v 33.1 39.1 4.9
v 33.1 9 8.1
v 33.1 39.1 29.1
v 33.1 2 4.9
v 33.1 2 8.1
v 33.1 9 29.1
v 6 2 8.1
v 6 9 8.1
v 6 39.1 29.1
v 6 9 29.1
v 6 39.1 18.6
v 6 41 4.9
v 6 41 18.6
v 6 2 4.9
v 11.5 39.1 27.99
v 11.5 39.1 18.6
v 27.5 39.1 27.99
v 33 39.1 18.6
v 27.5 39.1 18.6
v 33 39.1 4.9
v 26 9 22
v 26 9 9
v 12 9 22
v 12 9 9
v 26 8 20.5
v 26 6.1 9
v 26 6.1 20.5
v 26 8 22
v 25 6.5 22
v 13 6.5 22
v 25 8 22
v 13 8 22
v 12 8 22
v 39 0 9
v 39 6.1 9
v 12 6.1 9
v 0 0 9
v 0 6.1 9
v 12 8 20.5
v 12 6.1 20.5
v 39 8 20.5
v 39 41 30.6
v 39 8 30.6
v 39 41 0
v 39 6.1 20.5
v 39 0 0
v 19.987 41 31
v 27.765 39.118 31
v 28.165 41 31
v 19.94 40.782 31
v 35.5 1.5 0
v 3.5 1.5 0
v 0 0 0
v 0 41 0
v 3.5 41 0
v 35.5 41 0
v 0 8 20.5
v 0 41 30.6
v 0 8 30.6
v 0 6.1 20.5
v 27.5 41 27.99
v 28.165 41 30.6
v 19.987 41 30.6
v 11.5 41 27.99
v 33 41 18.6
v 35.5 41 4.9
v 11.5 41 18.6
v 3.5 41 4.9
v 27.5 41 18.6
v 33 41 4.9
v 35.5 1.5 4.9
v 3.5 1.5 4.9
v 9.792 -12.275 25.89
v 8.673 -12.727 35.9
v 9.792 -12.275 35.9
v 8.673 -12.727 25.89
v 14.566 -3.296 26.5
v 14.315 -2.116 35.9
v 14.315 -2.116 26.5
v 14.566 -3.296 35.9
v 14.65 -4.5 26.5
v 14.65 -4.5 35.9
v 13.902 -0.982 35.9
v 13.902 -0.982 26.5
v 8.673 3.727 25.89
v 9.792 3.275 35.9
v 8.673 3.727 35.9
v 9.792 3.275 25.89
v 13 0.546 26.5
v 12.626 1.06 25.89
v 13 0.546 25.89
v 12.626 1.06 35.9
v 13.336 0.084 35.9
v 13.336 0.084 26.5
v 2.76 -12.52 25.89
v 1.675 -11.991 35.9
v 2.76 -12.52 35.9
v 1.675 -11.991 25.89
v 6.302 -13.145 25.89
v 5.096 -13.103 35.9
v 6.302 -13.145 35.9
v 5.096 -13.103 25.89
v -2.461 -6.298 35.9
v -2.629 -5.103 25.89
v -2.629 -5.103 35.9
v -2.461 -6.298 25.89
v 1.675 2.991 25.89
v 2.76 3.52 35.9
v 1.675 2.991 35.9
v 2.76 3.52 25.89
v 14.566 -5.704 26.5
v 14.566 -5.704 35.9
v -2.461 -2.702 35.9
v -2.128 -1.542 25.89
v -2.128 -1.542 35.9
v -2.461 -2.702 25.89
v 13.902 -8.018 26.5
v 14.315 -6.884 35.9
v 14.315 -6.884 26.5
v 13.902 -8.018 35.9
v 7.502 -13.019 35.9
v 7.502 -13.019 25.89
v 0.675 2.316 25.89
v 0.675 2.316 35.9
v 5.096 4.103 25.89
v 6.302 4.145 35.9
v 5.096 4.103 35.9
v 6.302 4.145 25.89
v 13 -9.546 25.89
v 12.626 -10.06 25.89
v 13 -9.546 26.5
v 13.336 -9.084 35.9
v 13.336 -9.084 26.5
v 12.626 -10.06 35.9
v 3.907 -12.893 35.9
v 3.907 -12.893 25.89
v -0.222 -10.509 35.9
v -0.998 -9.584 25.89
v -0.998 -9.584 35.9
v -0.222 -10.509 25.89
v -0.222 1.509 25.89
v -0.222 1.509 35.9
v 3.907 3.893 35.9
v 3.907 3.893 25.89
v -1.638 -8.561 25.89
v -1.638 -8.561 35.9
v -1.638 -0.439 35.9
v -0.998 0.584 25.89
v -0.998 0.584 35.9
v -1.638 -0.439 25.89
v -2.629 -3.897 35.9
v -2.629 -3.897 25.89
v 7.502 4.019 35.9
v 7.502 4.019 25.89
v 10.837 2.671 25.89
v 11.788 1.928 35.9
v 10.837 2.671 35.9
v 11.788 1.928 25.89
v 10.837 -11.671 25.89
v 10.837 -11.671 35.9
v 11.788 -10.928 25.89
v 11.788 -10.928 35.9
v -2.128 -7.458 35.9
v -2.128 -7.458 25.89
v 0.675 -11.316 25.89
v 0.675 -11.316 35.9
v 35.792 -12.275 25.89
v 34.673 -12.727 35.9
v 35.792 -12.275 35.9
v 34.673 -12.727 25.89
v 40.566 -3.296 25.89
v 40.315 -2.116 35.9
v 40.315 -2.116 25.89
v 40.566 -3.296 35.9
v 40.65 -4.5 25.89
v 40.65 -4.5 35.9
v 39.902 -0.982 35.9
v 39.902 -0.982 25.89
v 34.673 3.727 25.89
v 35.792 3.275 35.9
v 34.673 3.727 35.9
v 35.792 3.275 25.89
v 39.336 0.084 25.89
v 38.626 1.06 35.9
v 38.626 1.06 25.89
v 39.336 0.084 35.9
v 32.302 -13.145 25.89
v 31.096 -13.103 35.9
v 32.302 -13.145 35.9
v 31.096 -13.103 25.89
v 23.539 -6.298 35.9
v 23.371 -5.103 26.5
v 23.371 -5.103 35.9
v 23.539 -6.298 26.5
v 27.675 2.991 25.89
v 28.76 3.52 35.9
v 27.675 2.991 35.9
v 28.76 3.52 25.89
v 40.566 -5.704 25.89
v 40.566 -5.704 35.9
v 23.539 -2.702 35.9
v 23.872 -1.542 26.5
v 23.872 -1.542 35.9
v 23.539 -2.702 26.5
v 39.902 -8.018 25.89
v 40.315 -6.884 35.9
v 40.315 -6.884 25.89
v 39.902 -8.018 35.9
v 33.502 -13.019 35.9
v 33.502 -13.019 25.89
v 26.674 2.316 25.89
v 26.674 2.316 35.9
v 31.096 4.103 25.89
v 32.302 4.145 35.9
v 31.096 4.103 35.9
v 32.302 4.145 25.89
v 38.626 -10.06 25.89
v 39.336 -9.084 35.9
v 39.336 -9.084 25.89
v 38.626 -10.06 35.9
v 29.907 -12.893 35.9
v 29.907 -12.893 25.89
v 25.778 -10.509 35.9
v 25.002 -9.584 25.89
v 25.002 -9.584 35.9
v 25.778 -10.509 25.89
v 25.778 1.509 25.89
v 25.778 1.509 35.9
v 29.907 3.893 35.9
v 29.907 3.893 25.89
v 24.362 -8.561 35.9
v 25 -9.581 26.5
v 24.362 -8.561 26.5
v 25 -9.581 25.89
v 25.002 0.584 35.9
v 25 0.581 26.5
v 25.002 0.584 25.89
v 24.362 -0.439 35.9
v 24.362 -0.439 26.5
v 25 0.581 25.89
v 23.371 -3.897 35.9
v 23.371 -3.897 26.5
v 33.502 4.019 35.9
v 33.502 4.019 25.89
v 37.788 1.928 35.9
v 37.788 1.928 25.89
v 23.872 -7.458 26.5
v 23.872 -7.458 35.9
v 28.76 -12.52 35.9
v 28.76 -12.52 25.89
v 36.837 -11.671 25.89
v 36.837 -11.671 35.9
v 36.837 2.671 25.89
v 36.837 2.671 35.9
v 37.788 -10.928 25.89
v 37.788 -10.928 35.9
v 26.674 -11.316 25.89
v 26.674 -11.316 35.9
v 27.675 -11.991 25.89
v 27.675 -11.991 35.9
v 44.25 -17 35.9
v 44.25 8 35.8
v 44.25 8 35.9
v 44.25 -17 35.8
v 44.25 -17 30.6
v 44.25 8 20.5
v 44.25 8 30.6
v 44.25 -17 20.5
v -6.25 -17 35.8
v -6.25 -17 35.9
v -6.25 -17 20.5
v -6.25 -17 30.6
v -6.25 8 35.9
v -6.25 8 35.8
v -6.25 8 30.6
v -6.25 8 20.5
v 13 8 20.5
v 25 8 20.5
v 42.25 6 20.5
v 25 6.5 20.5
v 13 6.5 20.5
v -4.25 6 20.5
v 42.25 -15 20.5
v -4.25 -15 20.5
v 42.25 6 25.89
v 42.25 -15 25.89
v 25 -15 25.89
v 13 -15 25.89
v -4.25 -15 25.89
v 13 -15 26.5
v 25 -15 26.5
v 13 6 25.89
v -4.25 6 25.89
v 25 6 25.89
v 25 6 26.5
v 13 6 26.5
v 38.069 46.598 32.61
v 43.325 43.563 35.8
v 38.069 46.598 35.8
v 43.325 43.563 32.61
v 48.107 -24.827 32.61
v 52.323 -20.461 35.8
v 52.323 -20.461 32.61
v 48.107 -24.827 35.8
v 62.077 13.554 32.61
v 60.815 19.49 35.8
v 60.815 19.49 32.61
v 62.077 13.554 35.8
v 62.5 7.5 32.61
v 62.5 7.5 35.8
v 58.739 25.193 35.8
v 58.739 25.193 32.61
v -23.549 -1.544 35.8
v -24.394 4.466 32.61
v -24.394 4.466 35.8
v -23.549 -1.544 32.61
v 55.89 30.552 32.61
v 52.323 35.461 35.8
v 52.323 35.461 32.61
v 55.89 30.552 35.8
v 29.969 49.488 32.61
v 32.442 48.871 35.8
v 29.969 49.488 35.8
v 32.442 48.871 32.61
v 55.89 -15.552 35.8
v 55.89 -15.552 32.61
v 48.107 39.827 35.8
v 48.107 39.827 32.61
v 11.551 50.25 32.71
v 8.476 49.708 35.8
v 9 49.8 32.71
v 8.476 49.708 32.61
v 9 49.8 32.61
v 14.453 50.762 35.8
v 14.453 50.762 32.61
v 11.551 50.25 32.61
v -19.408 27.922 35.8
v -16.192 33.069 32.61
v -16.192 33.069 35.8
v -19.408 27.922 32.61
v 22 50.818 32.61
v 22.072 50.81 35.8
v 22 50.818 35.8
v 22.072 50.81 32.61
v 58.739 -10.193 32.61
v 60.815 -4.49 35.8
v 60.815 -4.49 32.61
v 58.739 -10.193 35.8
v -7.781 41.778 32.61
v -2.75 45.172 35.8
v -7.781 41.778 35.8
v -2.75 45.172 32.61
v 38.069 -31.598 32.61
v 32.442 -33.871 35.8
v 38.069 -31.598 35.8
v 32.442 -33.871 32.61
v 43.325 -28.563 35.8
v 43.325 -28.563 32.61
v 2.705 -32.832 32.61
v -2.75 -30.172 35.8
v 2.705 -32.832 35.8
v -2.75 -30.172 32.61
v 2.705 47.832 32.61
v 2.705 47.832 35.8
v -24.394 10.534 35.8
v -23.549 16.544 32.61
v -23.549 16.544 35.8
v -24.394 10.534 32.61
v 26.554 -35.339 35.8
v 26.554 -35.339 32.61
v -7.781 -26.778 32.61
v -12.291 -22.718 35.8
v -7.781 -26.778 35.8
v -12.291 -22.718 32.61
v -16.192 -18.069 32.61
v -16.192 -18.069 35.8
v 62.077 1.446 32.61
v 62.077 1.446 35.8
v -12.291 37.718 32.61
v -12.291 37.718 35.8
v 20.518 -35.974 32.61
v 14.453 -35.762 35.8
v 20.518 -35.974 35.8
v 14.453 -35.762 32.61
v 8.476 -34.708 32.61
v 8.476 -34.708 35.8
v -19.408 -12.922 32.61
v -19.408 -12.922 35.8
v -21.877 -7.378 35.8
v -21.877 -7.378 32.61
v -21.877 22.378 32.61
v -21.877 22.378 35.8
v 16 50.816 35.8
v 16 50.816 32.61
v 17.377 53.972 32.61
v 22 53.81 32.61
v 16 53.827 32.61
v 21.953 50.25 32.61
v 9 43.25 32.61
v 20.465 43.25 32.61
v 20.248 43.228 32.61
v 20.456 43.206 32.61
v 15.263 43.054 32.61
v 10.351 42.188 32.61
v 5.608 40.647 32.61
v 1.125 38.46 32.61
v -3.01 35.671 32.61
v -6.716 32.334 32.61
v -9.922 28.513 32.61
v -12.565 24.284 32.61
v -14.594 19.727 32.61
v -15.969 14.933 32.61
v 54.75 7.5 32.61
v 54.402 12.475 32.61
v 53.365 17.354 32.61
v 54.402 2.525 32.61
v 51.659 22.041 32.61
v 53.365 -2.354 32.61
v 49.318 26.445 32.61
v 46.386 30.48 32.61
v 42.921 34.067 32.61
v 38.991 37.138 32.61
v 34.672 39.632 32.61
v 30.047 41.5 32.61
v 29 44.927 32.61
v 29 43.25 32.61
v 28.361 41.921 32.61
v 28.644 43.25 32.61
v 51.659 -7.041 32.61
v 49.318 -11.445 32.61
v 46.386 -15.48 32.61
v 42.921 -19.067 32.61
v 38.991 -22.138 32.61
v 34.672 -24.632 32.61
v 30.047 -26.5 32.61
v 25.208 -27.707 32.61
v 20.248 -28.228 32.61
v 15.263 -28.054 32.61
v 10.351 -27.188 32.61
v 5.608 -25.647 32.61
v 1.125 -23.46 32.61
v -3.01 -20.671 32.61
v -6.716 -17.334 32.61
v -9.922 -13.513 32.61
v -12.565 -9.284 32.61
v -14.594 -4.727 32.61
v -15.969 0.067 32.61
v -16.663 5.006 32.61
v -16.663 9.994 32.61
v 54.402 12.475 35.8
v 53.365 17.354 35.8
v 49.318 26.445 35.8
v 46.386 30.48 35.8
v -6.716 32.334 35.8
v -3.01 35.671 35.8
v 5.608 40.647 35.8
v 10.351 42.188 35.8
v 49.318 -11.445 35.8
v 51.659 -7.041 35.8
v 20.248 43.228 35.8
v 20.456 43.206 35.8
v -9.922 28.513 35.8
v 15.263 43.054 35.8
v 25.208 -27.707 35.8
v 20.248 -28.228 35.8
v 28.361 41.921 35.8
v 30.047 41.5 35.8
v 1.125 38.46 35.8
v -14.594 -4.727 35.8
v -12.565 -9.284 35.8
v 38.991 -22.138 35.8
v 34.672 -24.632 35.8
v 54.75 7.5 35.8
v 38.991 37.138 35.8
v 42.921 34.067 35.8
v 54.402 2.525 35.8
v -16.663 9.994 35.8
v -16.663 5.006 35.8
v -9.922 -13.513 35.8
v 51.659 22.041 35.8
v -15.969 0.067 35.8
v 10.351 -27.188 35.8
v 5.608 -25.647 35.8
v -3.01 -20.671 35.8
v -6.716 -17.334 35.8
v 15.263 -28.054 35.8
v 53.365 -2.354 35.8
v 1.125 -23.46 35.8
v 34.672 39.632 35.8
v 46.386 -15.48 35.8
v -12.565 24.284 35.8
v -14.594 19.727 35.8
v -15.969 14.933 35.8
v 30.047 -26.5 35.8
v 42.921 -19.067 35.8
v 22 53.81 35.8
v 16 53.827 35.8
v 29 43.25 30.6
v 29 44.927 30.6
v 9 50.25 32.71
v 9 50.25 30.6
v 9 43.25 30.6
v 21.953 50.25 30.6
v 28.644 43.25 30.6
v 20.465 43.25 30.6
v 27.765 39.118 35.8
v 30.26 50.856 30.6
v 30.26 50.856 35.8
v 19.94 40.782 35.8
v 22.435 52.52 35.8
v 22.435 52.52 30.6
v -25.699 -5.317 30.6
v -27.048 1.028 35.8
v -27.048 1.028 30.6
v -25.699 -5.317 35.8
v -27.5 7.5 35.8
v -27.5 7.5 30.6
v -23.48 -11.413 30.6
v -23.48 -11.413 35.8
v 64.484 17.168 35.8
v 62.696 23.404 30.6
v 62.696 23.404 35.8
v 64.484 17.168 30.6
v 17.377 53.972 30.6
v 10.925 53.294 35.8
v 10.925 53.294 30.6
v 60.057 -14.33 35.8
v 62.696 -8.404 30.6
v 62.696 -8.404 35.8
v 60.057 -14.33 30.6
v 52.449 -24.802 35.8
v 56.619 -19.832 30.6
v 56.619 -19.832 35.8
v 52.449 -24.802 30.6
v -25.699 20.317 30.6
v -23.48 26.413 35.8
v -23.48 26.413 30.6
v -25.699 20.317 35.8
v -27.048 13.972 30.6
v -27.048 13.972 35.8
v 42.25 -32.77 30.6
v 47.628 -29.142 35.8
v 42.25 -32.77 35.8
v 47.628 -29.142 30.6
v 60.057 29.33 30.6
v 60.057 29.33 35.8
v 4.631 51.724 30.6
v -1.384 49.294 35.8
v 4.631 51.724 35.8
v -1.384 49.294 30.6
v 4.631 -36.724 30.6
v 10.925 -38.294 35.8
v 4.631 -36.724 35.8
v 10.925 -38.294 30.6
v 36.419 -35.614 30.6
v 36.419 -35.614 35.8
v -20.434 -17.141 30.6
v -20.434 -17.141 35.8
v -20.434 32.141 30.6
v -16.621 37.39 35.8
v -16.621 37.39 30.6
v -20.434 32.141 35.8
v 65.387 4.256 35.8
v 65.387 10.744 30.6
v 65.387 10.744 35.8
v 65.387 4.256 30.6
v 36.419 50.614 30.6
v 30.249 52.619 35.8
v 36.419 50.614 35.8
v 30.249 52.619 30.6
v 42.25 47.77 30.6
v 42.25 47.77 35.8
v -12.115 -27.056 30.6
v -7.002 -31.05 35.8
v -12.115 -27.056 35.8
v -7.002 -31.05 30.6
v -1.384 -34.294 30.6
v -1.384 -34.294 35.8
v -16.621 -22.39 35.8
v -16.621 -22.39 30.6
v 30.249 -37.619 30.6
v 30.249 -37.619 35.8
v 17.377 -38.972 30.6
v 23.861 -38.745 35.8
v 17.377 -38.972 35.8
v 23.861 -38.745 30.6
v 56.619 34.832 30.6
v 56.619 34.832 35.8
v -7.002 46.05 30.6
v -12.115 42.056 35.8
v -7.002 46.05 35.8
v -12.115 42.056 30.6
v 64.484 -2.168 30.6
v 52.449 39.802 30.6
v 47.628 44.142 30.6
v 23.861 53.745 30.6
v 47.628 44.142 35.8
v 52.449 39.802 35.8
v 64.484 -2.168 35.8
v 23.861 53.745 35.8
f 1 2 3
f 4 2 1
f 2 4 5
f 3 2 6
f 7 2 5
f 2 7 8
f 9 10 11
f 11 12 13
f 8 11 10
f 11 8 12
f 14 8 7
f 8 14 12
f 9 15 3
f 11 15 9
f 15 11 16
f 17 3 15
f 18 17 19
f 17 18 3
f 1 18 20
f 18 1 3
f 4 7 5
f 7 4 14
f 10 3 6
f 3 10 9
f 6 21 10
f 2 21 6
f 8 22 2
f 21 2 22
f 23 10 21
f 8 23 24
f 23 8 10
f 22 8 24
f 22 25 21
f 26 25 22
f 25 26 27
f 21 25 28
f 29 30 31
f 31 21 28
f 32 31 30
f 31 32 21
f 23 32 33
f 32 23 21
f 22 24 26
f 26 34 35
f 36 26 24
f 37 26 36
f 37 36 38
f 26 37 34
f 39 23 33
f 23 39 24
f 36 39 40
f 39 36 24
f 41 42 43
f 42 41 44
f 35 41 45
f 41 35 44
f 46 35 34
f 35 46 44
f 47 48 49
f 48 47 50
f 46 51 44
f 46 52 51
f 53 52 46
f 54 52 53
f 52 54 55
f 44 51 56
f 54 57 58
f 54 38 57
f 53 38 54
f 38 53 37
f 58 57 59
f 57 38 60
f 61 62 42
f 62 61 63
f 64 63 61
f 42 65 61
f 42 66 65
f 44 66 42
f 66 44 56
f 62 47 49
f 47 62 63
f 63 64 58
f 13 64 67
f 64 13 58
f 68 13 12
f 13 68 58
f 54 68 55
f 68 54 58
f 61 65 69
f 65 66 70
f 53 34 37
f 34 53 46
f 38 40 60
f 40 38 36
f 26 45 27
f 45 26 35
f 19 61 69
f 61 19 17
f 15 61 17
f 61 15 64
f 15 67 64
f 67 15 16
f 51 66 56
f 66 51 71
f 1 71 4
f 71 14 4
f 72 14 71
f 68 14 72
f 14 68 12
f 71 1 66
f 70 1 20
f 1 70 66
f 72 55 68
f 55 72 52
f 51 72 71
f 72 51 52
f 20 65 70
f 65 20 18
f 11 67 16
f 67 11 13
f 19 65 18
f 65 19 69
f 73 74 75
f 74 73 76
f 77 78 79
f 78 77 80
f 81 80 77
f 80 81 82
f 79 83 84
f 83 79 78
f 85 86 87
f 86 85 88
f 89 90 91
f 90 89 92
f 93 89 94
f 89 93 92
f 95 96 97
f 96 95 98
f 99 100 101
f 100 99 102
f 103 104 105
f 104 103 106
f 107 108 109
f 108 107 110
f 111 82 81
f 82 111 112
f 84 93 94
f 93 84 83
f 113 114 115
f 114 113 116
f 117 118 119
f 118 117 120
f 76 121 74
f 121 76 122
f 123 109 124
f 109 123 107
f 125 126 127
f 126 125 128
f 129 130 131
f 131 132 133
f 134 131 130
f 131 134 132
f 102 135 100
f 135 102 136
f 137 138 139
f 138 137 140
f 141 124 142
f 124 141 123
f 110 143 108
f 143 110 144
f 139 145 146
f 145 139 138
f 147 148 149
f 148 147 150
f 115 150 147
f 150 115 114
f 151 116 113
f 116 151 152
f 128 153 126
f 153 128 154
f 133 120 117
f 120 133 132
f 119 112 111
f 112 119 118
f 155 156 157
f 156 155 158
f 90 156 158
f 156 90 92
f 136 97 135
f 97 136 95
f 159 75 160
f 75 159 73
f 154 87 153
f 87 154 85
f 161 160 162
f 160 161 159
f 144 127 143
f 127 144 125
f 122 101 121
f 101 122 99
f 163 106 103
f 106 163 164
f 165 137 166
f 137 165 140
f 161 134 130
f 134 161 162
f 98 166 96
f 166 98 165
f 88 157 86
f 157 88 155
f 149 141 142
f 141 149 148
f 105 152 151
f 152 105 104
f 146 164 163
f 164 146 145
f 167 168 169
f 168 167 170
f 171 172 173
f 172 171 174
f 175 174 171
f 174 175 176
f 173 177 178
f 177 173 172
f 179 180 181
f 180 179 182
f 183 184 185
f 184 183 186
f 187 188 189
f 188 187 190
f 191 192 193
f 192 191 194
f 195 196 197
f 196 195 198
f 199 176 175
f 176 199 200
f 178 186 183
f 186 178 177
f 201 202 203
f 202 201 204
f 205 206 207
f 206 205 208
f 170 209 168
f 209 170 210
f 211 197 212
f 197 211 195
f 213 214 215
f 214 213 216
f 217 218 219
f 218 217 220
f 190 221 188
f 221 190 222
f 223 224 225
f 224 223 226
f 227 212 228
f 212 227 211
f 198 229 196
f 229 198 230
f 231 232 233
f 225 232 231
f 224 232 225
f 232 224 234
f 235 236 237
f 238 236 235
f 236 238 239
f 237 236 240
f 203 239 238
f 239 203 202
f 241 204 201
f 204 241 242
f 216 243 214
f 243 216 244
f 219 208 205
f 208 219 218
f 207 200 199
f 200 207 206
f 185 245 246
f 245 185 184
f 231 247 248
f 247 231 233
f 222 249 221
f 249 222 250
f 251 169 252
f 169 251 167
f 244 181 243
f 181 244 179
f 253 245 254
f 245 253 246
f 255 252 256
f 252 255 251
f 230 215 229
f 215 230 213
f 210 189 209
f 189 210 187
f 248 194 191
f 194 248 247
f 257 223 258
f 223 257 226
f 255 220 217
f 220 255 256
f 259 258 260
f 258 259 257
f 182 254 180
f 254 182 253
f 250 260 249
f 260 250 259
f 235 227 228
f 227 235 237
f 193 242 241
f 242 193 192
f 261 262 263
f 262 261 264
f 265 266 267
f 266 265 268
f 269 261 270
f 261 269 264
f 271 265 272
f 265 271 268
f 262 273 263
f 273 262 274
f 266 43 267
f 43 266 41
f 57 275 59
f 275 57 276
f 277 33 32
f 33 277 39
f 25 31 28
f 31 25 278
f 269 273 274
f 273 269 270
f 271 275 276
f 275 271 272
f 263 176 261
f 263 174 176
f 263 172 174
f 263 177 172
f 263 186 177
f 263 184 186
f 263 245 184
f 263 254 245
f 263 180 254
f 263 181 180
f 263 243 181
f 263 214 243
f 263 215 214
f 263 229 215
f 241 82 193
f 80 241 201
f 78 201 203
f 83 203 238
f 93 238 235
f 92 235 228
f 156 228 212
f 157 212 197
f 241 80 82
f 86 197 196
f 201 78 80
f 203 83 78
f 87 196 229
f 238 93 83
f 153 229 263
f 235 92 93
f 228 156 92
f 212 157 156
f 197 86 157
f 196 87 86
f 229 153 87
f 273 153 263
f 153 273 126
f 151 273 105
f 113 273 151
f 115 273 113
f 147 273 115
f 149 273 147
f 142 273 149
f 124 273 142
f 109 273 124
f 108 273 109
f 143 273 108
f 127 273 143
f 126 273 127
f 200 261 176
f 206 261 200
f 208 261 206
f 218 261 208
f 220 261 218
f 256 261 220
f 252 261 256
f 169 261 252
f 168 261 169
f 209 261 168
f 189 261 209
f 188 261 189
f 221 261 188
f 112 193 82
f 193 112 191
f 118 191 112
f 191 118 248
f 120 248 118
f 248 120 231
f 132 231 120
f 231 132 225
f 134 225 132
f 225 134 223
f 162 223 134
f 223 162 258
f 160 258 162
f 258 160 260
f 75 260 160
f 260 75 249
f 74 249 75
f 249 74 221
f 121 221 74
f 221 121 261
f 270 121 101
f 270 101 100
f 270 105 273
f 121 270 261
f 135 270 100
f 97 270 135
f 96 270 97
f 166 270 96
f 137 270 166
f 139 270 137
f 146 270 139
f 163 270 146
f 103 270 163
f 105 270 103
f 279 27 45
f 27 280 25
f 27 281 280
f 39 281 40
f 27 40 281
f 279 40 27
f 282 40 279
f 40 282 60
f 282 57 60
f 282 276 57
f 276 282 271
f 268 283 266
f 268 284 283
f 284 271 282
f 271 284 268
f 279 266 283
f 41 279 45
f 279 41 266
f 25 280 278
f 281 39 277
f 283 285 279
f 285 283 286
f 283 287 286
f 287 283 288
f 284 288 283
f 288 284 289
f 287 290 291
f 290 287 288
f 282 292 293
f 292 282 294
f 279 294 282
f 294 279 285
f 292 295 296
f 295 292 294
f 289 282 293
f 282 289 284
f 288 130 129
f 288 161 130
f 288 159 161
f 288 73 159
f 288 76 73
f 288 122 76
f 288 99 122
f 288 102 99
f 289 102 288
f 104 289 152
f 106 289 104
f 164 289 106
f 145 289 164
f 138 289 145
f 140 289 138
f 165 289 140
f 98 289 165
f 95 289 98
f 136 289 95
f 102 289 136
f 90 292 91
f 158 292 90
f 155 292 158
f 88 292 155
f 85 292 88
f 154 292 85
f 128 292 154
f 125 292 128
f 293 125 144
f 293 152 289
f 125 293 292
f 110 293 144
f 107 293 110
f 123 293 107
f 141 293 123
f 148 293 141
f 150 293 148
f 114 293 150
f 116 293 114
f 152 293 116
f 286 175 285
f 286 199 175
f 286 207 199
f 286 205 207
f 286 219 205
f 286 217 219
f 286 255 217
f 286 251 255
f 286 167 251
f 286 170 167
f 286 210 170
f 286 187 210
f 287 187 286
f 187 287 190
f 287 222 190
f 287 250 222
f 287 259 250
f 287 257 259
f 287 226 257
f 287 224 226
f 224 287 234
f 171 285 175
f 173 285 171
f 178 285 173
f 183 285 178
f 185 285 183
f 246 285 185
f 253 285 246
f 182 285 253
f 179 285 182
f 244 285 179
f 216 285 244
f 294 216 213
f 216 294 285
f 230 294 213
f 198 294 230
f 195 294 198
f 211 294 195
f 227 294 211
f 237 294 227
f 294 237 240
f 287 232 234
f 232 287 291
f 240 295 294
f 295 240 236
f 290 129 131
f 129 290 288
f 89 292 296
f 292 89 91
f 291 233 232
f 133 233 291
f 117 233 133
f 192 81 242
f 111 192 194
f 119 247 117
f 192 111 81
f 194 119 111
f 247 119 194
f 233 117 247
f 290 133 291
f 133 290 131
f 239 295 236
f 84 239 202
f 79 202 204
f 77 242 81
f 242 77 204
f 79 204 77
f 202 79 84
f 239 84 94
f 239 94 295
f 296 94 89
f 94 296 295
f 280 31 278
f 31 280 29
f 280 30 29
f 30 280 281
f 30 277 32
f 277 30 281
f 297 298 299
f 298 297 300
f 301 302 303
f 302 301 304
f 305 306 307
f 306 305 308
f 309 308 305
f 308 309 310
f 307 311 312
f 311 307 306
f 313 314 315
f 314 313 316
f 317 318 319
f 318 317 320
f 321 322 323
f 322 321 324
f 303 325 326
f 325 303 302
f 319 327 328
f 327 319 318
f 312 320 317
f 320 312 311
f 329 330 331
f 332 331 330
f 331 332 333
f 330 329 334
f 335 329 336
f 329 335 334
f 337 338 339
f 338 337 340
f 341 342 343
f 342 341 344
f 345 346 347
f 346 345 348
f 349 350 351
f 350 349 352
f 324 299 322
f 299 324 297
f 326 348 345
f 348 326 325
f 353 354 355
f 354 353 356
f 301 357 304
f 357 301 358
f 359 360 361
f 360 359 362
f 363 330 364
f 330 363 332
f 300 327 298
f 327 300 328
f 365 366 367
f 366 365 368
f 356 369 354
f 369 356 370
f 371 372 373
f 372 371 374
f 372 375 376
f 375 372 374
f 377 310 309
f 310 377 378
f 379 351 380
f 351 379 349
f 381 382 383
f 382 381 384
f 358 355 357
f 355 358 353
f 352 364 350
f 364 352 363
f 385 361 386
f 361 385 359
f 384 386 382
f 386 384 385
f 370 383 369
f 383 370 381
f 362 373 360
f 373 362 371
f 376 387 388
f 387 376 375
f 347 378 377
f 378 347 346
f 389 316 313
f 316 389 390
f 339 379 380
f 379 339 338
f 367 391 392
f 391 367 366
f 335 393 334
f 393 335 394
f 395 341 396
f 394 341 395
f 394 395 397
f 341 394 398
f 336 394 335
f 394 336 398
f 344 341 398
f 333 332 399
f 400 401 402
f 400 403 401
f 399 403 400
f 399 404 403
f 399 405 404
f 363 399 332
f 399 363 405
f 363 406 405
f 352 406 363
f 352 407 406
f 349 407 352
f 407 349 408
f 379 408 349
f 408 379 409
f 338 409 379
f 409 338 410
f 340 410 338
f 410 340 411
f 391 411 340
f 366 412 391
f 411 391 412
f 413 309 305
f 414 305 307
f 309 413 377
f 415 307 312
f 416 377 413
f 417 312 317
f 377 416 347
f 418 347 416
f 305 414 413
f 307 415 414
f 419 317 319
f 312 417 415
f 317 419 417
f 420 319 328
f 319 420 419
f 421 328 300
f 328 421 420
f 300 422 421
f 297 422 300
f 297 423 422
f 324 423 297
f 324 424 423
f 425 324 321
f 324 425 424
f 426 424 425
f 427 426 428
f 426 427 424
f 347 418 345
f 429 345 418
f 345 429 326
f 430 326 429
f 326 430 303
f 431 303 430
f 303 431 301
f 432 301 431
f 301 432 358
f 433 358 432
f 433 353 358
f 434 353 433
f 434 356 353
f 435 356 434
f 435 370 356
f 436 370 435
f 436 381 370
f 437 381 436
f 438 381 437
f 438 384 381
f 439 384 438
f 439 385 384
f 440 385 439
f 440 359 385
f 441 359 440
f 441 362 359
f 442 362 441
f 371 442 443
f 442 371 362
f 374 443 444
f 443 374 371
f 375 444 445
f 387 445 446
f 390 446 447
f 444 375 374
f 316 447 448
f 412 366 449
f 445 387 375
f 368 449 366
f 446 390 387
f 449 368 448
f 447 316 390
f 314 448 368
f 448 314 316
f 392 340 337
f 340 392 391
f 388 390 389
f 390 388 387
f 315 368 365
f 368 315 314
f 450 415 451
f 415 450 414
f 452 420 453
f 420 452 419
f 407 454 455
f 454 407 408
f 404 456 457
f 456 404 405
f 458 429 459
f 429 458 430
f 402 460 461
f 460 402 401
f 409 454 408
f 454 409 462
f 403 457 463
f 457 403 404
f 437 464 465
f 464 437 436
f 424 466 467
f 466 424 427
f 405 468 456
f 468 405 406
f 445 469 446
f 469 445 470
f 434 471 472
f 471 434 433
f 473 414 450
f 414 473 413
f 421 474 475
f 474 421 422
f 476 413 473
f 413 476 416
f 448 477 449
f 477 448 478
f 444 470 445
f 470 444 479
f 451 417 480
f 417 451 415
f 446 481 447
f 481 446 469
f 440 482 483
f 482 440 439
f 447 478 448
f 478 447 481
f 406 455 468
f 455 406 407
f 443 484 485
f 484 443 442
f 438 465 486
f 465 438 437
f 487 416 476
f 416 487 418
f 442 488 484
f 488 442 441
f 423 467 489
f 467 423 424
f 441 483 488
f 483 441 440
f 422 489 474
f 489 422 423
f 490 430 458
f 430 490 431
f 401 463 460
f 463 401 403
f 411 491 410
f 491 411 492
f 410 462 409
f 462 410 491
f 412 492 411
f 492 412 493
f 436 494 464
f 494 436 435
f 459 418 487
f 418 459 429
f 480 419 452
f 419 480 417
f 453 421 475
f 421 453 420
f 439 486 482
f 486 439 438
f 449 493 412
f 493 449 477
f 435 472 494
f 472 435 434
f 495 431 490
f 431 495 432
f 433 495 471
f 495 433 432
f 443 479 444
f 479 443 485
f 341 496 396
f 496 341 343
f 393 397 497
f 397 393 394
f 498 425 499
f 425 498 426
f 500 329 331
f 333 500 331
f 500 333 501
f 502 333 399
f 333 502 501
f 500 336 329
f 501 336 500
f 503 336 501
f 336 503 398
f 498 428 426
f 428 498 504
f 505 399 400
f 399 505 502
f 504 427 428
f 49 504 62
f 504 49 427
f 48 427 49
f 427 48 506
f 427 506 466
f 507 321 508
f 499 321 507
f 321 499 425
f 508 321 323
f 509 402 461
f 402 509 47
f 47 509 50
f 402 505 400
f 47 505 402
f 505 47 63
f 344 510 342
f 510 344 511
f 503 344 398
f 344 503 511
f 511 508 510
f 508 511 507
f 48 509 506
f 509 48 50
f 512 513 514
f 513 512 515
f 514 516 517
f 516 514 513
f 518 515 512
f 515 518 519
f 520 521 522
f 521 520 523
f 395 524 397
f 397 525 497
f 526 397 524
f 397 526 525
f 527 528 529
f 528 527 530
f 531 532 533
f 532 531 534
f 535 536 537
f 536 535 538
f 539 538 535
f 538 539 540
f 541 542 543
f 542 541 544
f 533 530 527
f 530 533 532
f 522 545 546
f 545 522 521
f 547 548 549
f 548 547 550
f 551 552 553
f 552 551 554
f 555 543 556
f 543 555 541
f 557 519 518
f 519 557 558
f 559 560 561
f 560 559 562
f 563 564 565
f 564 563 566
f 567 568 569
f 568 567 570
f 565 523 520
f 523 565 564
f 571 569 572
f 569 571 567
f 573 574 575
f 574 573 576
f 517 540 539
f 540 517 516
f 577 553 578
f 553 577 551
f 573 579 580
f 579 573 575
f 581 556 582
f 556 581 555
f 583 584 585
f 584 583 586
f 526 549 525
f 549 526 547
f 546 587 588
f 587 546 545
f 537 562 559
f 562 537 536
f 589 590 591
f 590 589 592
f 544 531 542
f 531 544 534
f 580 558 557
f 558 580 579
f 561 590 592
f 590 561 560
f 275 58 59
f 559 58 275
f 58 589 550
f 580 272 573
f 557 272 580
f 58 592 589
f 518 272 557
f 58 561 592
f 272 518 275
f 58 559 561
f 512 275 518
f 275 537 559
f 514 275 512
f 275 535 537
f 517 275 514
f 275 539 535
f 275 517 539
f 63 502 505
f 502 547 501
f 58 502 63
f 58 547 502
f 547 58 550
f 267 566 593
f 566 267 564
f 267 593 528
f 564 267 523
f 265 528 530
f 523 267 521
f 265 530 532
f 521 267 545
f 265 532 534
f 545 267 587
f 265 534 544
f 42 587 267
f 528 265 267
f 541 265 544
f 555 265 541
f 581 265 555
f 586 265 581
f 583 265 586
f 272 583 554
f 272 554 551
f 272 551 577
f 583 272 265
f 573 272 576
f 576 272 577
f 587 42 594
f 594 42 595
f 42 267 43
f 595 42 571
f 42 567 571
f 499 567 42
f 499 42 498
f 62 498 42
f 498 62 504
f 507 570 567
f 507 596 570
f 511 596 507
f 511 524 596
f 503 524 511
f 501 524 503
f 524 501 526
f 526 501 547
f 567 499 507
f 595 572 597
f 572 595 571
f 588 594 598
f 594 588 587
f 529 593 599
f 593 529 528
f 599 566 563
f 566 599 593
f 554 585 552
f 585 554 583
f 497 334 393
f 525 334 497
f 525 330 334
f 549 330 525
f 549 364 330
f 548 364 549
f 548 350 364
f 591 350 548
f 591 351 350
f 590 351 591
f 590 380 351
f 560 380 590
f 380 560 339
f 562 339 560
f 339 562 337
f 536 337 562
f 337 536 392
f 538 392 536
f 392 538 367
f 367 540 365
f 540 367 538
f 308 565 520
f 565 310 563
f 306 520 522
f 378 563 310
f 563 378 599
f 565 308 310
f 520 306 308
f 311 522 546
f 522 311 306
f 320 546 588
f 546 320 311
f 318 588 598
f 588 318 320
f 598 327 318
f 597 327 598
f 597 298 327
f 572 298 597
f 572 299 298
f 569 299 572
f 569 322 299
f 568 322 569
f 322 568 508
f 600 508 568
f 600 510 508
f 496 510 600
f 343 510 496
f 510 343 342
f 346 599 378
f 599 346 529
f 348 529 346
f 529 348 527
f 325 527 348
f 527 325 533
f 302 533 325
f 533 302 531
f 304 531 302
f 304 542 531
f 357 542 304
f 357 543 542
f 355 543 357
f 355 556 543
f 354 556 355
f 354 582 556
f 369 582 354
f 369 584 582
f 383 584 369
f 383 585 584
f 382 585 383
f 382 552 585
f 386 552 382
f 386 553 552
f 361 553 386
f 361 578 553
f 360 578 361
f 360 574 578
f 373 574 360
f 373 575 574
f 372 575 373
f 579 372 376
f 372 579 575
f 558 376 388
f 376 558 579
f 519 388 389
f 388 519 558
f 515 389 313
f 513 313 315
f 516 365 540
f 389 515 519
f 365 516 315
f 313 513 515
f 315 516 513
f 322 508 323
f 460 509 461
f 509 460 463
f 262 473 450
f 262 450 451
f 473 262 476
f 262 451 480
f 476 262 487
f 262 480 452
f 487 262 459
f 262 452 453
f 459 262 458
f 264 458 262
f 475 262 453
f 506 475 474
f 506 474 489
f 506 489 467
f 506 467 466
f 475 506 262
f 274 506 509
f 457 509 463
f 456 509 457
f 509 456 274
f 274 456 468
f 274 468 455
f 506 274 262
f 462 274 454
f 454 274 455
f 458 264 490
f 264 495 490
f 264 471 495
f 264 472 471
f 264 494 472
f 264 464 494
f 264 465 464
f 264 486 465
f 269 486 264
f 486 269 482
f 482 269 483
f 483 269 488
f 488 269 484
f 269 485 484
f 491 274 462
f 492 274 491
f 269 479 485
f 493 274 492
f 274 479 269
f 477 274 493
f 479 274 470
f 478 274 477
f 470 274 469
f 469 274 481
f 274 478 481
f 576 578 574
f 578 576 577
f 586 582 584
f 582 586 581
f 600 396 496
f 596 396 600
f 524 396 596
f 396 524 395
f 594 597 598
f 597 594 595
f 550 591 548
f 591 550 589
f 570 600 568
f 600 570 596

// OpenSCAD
// use <../LibExternal/Triangles.scad>;
// use <MCAD/shapes/triangles.scad>;
use <MCAD/triangles.scad>;

debug=0;


border=2;
border1=1;
addSpace=.5;
wemosD1Mini=[26,36,5]+addSpace*[2,2,2];
wemosD1ExperimentBoard=[26,29,20]+addSpace*[2,2,2];


// ---------------------------------------------------------------------------------------------------------
// do not need to modify anything below here
// ---------------------------------------------------------------------------------------------------------
/* [Hidden] */

$fn=45;
numberOfBaseMountingClips=0;

// Main
difference(){
    translate([0,debug*20,0]) HandWashTimerHousing();
    
    // cube to cut fee for Debugging
    // translate([25,-60,-.1])cube([120,120,20]);
    // # translate([-25,-60,-14-.1])cube([120,120,20]);
    // translate([11,border,-.1])cube([28,39,border+.2]);
}
//translate([0,90,0]) bottomLid(cutout=0);
//wemosCutout();
// neoPixelCutout();
// translate([70,debug*20,31.7])    bottomLid()


if ( debug ) {
    translate([-60,0,0]) wemosCutout();

    translate([-90,50,0]) UltrasonicHousing();

    translate([0,-60,0]) neoPixelHolder();

    translate([90,-60,0]) neoPixelCutout();



}

neoPixelRingH=3.2;
neoPixelRingDInner=72;
neoPixelRingDOuter=86.5;


module HandWashTimerHousing(){

    connectionHeight=10;
//    offsetX=9.5;
     offsetX=0;
    borderX=4;
    
    outerSize=[ 1*wemosD1Mini[0] + 2*border,
                1*wemosD1Mini[1] + 2*border,
                1*wemosD1Mini[2] + 2*border
                    +wemosD1ExperimentBoard[2]
                ]
               +[2*borderX,0,0];
    
    difference(){
        cube(outerSize);

        // CUt away outer part for fitting SR04
        translate(border*[0,-1,1]
                    + [-4,.1 ,wemosD1Mini[2]+border1 ]
                ) 
            cube([47,8,32]);
        
        // Wemos cutout
        translate( border * [1,1,1] 
                  + borderX*[1,0,0]) 
            wemosCutout();

        // Cutout for Neopixel Cable
        translate( border*[1,0,0]
                    + [offsetX + wemosD1Mini[0]/2-4,
                    wemosD1Mini[1] +2-.1 ,18-.01 ]
                ) 
            cube([16,border+2,10]);

        // remove border bottom
        translate([borderX,0,-.1]
                    +border*[0,1,0]
                    +addSpace*[-1,-1,0])
            bottomLid(cutOut=1);

        // remove border back
        translate([borderX+border,wemosD1Mini[1]+border,-.1])   
            cube([wemosD1Mini[0],2,border
                    + wemosD1Mini[2]+0.5*wemosD1ExperimentBoard[2]]
                +.2*[0,1,1]);
        }

    // SR04
    translate([borderX+15,8,border+14+4.5])
        rotate([90,0,0])
            UltrasonicHousing();

    // Neo Pixel Holder
    translate([borderX+15,7.5,outerSize[2]-1.2*border+2])
        rotate([0,0,180]) neoPixelHolder();
    
    // Base Mount Clips
    translate([0,0,0]) 
        BaseMountingClips(
            numberOfBaseMountingClips=numberOfBaseMountingClips,
            outerSize= outerSize);
	
    }


module bottomLid(cutOut=0){
    cube(
        [wemosD1Mini[0],wemosD1Mini[1],border]
        +border*[2,2,1]
        +cutOut*addSpace*[2,2,2]);
}

module backLid(cutout=0){
    cube([  wemosD1Mini[0] + 2*border,
            1,
            wemosD1Mini[2]+ wemosD1ExperimentBoard[2] ]
        +cutout*[1,1,2]
    );
}

module wemosCutout(){
        hBase=wemosD1Mini[2];
        height=hBase
            +wemosD1ExperimentBoard[2];
 
       cube(wemosD1Mini + [.1,.1,.1]);
        deltaY=wemosD1Mini[1]-wemosD1ExperimentBoard[1];
        translate([0,deltaY,hBase])
            cube(wemosD1ExperimentBoard
                +[.1,.1,.1]);
        
        // Usb Cutout
        translate([6,31,-3])
            cube([14,15,9+4]); 

        // SC04 4-Pin Plug cutout
        // y direction is larger so we can slide in the SR04
        translate([6,-3,7])
            cube([14,16,13]);


}

module neoPixelHolder(){
    dOuter=neoPixelRingDOuter +addSpace +border +4;
    dInner=0;
    // dInner=neoPixelRingDInner -addSpace -border -14;
    hTotal=neoPixelRingH                +border;
    difference(){
        cylinder(h=hTotal,d=dOuter);
        translate([0,0,-.01])
            cylinder(h=hTotal+.02,d=dInner);
        
        translate([0,0,.01+border])
            rotate([0,0,180])
                neoPixelCutout();
        
        // cutout for SR04
        translate([-22.5,2,-.01])
            cube([45,21,hTotal+1]);
        
    }
}


module neoPixelCutout(){
    dOuter=neoPixelRingDOuter+addSpace;
    dInner=neoPixelRingDInner-addSpace;
    hTotal=neoPixelRingH;
    difference(){
        cylinder(h=hTotal,d=dOuter);
        translate([0,0,-.01])
            cylinder(h=hTotal+.02,d=dInner);
    }

    translate([-3,dOuter/2-.2,0])    cube([6,6,hTotal]);

    // FOr cables
    translate([-10,dInner/2,-3])        cube([20,7,3.1]);

    // for cable tie to fix cables
    rotate([0,0,-12])
        translate([-6,dInner/2-3,-3]) 
        cube([8,12,hTotal+6]);

    numLeds=24;
    for ( i=[0:360/numLeds:360] ){
        rotate([0,0,i])
            translate([-3,dInner/2+1,hTotal])
                cube([6,6,2]);
    }
}



// Modules
module UltrasonicHousing(){
    innerCutout=[45.5,3.4,20]+border1*[1,0,1];

    tubeLen=12;

    holeDistance=26;
    diameter=16.3+1;

	outerBase = innerCutout
                + [0,tubeLen,0]
                + 2*border*[1,0,1];

	color("blue")
    difference(){
    // union(){
        translate([-outerBase[0]/2,0,0])
            cube(outerBase);

        // Inner cutout
        translate(  [ -innerCutout[0]/2 ,-.01,border])
            cube(  innerCutout
                   +border*[0,1,0]
                   );
	
        // IC / Pinrow cutout
	    translate( [ -6, 0 , border ] )
	            cube([12,6,innerCutout[2]]);
         // cutout for Pins
        translate([-6,-3,-2])
            cube([12,6,3.5]); 	

		// Holes for sonic Receiver and Transmitter
	    translate([0,innerCutout[1],0])
            for ( x=[-holeDistance/2,holeDistance/2] )
                translate([x,0,border+innerCutout[2]/2])
                    rotate([-90,0,0])
                        cylinder(d=diameter,h=12.3);
    }
}


module BaseMountingClips(numberOfBaseMountingClips=4,outerSize){

    diameterBaseClipHoles=3;
    
    outerSizeX = outerSize[0];
    outerSizeY = outerSize[1];
    outerSizeZ = outerSize[2];


    yRange= (numberOfBaseMountingClips==4) ? [5.5,outerSizeY-5.5]
                :(numberOfBaseMountingClips==2) ? [outerSizeY/2] : [];

    
    for( x=[0,outerSizeX]){
        for( y=yRange){
            translate([x,y,0])
    	    rotate([0,0,(x > 0.01?-90:90)])
    	        BaseMountingClip(
                    diameterBaseClipHoles=diameterBaseClipHoles,
                    x=x,y=y);
        }
    }
}

module BaseMountingClip(diameterBaseClipHoles=3){
    diameterSkrewHead=diameterBaseClipHoles+4;
    reinforcementX=1.5;
    sizeBaseMountX=diameterSkrewHead + 1 + 2*reinforcementX;
    sizeBaseMountY=diameterSkrewHead + 3;
    sizeBaseMountZ=2.5;
    
    translate([-sizeBaseMountX/2,0,0])
    union(){
        difference(){
        	
            cube([sizeBaseMountX,sizeBaseMountY,sizeBaseMountZ]);

            // central hole for screw
            translate([sizeBaseMountX/2,sizeBaseMountY/2,-0.01])
                cylinder(d=diameterBaseClipHoles,h=sizeBaseMountZ+1);

            //  hole for screw-head
            translate([sizeBaseMountX/2,sizeBaseMountY/2,2])
                cylinder(d=diameterSkrewHead,h=sizeBaseMountZ+1);

            *translate([2,2,1])
                cube([sizeBaseMountX-3*2,sizeBaseMountY-3*2,sizeBaseMountZ]);
        }
        
        for(x=[0,sizeBaseMountX-reinforcementX])
       		translate([x,0,sizeBaseMountZ])
       			rotate([90,0,90]) 
       				Right_Angled_Triangle(a=2, 
                            b=sizeBaseMountY,height=reinforcementX);
       

        
        

    }        
}
